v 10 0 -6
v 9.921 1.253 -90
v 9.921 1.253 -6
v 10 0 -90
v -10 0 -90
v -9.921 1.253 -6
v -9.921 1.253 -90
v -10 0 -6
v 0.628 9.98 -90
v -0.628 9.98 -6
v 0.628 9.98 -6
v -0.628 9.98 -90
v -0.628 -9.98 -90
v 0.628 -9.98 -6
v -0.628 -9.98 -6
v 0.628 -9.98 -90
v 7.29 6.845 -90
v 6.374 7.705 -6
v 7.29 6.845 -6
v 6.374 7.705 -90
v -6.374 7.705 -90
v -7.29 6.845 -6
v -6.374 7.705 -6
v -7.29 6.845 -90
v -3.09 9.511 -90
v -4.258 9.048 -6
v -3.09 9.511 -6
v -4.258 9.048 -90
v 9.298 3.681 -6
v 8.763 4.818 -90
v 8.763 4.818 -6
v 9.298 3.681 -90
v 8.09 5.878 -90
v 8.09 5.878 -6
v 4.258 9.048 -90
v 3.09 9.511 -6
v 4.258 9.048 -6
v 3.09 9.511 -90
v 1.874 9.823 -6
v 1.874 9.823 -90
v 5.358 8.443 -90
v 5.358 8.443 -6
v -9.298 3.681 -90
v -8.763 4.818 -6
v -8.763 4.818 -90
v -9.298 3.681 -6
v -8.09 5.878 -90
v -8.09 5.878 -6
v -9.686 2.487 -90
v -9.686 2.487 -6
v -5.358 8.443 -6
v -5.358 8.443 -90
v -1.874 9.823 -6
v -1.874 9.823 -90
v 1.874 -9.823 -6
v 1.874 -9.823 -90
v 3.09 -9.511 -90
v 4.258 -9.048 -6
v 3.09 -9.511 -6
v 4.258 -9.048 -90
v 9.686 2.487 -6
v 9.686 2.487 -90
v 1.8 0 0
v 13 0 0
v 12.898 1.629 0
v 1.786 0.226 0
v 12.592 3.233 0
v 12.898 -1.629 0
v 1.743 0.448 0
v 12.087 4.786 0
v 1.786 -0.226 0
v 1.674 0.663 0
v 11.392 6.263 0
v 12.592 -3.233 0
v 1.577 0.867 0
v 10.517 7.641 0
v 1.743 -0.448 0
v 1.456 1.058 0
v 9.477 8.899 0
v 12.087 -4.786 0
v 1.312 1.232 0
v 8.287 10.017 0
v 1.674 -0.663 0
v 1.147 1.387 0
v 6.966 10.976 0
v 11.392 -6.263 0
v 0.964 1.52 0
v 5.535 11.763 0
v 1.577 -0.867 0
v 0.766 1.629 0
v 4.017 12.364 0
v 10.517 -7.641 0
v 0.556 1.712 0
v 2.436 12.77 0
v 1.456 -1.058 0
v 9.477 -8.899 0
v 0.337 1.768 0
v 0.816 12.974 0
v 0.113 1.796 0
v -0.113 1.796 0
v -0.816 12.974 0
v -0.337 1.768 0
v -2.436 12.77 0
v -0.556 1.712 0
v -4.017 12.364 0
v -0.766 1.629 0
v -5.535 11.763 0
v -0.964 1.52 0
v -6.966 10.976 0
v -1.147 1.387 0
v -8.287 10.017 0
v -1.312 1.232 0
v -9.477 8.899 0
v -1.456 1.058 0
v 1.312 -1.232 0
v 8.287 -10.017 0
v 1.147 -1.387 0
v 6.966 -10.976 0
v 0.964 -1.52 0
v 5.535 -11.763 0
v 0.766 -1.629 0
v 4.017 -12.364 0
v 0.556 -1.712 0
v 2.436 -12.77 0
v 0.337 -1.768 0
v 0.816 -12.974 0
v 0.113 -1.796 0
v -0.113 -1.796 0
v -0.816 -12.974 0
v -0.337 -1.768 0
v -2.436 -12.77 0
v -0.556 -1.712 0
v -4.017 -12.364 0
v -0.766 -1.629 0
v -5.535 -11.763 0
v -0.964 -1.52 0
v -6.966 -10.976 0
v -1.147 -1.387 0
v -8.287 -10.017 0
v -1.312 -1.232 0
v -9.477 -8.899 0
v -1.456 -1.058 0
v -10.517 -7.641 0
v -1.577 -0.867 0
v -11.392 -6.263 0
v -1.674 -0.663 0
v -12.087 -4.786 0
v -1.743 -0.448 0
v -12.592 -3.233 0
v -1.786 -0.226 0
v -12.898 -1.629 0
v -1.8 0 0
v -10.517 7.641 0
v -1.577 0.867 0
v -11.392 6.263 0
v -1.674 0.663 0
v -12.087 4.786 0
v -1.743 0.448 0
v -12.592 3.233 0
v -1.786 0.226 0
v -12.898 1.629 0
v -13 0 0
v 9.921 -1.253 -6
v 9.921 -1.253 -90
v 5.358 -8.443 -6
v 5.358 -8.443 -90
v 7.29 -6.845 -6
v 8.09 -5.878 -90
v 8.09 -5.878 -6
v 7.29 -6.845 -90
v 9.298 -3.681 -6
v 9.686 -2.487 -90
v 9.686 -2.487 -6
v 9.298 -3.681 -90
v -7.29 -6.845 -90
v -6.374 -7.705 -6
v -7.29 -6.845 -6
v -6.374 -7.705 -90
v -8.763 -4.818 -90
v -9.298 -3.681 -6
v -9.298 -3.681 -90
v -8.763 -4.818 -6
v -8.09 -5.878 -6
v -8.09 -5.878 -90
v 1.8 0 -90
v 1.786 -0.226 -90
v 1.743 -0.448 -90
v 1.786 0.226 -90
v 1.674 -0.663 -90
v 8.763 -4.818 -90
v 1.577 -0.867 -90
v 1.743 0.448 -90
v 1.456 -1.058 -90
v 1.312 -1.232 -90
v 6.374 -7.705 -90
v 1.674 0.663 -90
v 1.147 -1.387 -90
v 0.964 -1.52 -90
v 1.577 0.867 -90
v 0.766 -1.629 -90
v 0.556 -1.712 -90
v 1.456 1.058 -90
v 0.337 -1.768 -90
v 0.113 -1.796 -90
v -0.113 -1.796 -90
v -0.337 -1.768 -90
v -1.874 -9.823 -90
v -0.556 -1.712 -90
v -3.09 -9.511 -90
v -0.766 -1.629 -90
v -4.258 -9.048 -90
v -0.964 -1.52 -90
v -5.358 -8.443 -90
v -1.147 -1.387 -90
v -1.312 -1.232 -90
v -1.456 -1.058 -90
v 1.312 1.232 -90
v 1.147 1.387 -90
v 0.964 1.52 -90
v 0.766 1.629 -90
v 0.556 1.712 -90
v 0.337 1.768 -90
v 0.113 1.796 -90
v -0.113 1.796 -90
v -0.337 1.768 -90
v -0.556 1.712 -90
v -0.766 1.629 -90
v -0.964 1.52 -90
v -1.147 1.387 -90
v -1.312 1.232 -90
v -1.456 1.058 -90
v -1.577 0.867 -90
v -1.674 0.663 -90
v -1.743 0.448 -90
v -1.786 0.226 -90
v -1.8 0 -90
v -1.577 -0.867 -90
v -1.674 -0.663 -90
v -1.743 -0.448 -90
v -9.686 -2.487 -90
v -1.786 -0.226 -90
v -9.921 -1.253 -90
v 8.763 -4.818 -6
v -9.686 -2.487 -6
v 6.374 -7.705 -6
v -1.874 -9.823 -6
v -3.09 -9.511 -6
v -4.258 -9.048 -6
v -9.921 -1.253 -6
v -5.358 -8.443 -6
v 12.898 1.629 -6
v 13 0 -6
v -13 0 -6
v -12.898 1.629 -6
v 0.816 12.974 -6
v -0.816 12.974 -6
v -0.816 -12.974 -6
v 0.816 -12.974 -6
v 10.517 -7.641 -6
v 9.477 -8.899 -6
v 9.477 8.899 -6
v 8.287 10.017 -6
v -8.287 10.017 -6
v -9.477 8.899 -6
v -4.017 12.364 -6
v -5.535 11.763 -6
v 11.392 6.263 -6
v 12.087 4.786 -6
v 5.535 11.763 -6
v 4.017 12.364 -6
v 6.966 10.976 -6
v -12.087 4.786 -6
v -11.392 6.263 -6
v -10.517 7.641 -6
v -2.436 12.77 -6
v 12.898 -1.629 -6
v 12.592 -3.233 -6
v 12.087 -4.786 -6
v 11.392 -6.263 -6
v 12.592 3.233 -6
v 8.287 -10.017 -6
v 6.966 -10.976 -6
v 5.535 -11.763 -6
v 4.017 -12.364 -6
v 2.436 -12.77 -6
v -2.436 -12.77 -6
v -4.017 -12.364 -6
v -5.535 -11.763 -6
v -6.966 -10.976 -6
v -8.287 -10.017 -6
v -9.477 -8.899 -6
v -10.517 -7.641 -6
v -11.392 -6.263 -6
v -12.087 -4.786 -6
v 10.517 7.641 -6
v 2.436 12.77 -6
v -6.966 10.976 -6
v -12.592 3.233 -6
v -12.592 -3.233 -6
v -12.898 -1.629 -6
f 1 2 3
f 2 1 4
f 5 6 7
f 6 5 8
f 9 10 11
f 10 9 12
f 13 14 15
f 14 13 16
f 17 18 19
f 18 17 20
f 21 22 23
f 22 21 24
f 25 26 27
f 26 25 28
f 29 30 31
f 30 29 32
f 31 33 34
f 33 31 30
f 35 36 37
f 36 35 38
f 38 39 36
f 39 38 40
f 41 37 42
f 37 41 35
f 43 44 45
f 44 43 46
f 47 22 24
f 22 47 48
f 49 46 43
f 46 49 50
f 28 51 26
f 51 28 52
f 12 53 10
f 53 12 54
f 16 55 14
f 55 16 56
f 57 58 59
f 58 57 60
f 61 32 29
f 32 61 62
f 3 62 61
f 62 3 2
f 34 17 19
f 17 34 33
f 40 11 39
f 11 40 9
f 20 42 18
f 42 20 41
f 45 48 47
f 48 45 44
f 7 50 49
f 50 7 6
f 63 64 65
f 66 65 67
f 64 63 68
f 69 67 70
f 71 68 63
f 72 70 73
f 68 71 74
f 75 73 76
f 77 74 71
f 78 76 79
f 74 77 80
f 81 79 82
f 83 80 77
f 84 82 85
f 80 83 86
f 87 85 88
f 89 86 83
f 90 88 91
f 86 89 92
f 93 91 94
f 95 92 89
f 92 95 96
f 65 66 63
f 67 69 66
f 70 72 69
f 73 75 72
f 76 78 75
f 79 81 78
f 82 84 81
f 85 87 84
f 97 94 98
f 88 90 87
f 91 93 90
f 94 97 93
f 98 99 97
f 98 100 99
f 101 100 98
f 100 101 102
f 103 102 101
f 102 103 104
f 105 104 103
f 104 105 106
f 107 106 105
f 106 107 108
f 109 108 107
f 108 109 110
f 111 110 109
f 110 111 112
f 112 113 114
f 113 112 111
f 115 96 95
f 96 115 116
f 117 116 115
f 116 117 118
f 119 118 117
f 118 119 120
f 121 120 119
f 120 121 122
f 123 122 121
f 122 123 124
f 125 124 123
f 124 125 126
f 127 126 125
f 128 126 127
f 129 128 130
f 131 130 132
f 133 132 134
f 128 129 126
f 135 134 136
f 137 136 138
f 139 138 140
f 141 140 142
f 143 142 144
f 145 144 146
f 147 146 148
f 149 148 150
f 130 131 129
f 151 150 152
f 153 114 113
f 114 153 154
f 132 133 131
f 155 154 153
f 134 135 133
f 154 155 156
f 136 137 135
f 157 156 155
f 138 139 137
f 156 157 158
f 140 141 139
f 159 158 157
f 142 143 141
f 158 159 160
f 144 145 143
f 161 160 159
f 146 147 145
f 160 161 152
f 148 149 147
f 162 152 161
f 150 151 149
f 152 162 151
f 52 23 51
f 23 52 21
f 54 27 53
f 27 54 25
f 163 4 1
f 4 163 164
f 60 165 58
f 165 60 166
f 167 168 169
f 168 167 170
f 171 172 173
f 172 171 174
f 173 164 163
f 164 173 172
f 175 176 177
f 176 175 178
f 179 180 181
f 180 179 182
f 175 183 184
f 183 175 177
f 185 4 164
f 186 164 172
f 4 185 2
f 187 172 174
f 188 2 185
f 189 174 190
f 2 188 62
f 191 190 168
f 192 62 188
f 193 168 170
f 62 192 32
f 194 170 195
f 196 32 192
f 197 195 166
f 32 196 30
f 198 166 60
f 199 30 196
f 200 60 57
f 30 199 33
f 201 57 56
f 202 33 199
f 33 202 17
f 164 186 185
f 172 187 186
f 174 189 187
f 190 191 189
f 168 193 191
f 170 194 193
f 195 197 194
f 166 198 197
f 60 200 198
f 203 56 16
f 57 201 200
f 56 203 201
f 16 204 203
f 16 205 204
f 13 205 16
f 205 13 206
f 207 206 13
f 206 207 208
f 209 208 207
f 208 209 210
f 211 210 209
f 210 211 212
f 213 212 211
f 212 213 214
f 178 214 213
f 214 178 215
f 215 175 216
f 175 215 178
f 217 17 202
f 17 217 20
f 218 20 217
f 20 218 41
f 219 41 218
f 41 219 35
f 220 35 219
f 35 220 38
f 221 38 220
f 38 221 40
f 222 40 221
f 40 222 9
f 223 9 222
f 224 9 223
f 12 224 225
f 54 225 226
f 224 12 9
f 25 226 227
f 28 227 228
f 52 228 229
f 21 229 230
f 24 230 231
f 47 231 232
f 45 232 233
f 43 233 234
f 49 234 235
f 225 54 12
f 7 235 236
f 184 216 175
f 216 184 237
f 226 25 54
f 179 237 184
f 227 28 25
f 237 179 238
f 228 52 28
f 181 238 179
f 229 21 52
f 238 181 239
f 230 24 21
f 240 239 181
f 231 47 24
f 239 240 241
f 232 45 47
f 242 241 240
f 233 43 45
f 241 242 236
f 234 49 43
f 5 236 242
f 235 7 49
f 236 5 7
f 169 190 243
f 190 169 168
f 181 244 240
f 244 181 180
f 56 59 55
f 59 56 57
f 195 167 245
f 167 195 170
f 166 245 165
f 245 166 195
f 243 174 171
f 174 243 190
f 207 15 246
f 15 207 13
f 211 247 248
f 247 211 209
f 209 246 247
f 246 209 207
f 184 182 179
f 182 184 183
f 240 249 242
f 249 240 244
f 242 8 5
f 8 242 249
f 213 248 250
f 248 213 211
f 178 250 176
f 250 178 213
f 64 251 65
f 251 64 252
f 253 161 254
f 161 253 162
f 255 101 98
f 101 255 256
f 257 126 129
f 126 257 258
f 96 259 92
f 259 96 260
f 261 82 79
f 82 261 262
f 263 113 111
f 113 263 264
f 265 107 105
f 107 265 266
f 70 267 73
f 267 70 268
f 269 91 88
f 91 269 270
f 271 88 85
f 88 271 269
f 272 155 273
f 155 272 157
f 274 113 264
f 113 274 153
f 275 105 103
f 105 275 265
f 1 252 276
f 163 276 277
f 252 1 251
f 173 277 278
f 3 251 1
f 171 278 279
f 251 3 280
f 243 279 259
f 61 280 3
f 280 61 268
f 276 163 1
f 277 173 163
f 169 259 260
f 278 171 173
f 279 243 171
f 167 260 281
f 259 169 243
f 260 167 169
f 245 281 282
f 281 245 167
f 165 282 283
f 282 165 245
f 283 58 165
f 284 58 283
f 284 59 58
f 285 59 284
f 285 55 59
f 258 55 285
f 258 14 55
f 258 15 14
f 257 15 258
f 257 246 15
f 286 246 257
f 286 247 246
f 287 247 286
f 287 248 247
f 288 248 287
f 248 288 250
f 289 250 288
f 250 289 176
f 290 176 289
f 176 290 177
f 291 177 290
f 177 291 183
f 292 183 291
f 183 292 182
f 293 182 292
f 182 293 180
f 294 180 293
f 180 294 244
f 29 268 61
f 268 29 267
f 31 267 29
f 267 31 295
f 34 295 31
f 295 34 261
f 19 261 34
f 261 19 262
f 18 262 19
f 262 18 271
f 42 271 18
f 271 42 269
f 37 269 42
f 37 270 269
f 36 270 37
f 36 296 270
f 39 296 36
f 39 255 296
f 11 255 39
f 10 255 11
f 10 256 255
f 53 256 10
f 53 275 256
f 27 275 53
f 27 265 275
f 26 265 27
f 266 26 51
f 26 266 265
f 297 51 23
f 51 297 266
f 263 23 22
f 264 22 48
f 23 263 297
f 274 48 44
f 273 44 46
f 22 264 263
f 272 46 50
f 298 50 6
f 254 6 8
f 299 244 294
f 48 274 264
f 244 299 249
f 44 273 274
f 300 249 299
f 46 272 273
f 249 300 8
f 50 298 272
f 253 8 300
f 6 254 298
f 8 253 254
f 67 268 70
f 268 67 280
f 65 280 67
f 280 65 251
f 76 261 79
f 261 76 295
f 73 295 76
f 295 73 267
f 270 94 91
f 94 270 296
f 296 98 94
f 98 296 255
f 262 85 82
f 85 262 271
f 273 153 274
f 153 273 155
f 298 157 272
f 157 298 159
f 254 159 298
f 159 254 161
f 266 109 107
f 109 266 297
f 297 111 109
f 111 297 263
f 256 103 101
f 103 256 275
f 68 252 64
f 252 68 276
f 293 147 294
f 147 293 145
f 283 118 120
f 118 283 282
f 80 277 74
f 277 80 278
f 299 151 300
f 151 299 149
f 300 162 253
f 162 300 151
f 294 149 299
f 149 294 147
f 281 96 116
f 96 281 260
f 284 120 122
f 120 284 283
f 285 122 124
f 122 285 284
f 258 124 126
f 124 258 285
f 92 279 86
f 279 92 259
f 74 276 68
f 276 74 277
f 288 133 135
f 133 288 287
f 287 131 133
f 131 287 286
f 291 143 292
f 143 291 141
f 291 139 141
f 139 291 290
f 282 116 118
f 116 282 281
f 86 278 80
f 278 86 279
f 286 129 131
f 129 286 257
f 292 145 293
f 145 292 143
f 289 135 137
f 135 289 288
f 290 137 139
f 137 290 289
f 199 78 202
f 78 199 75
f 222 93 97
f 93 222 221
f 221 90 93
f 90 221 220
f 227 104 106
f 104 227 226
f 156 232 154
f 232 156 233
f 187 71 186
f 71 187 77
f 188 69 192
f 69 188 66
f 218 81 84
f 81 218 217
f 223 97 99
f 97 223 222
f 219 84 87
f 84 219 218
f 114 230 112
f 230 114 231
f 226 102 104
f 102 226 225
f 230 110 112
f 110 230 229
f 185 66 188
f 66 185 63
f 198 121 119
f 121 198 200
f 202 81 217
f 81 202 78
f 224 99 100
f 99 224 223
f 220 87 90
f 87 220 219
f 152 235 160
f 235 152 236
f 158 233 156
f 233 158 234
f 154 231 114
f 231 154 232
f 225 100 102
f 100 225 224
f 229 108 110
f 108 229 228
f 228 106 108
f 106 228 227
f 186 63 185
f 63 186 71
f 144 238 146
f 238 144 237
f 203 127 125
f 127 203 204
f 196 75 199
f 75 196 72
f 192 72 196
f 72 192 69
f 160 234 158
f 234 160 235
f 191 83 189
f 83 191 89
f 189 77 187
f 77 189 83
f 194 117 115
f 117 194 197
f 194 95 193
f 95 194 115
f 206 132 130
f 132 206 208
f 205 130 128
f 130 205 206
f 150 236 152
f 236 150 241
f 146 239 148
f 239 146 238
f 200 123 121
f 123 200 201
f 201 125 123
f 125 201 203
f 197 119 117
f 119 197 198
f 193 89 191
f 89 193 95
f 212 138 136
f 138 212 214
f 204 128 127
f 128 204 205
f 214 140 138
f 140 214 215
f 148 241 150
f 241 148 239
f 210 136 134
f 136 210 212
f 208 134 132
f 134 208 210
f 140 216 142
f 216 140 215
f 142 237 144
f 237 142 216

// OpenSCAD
$fn = 50;


difference() {
	union() {
		translate(v = [0, 0, -90.0000000000]) {
			cylinder(h = 90, r = 10.0000000000);
		}
		translate(v = [0, 0, -6.0000000000]) {
			cylinder(h = 6, r = 13.0000000000);
		}
	}
	union() {
		#translate(v = [0, 0, -90]) {
			cylinder(h = 90, r = 1.8000000000);
		}
	}
}
